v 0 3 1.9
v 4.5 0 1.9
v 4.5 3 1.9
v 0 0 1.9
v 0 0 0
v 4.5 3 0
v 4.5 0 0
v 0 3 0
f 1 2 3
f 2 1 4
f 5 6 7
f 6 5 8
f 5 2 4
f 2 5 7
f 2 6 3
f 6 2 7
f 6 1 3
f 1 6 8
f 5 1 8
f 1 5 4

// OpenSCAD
/* Warning, this is a very basic generator with a lot of approximation 
input data : [QFN, QRA, 4.5x3x1.9mm, 24, , A, C04-01295A]
generated by com.zoubworld.electronics.cad.model3d.Basic
Date : Sun Feb 15 10:50:49 CET 2026
*/

//body
color("black")
translate([0,0,0])
cube([4.5,3.0,1.9], center=false);
